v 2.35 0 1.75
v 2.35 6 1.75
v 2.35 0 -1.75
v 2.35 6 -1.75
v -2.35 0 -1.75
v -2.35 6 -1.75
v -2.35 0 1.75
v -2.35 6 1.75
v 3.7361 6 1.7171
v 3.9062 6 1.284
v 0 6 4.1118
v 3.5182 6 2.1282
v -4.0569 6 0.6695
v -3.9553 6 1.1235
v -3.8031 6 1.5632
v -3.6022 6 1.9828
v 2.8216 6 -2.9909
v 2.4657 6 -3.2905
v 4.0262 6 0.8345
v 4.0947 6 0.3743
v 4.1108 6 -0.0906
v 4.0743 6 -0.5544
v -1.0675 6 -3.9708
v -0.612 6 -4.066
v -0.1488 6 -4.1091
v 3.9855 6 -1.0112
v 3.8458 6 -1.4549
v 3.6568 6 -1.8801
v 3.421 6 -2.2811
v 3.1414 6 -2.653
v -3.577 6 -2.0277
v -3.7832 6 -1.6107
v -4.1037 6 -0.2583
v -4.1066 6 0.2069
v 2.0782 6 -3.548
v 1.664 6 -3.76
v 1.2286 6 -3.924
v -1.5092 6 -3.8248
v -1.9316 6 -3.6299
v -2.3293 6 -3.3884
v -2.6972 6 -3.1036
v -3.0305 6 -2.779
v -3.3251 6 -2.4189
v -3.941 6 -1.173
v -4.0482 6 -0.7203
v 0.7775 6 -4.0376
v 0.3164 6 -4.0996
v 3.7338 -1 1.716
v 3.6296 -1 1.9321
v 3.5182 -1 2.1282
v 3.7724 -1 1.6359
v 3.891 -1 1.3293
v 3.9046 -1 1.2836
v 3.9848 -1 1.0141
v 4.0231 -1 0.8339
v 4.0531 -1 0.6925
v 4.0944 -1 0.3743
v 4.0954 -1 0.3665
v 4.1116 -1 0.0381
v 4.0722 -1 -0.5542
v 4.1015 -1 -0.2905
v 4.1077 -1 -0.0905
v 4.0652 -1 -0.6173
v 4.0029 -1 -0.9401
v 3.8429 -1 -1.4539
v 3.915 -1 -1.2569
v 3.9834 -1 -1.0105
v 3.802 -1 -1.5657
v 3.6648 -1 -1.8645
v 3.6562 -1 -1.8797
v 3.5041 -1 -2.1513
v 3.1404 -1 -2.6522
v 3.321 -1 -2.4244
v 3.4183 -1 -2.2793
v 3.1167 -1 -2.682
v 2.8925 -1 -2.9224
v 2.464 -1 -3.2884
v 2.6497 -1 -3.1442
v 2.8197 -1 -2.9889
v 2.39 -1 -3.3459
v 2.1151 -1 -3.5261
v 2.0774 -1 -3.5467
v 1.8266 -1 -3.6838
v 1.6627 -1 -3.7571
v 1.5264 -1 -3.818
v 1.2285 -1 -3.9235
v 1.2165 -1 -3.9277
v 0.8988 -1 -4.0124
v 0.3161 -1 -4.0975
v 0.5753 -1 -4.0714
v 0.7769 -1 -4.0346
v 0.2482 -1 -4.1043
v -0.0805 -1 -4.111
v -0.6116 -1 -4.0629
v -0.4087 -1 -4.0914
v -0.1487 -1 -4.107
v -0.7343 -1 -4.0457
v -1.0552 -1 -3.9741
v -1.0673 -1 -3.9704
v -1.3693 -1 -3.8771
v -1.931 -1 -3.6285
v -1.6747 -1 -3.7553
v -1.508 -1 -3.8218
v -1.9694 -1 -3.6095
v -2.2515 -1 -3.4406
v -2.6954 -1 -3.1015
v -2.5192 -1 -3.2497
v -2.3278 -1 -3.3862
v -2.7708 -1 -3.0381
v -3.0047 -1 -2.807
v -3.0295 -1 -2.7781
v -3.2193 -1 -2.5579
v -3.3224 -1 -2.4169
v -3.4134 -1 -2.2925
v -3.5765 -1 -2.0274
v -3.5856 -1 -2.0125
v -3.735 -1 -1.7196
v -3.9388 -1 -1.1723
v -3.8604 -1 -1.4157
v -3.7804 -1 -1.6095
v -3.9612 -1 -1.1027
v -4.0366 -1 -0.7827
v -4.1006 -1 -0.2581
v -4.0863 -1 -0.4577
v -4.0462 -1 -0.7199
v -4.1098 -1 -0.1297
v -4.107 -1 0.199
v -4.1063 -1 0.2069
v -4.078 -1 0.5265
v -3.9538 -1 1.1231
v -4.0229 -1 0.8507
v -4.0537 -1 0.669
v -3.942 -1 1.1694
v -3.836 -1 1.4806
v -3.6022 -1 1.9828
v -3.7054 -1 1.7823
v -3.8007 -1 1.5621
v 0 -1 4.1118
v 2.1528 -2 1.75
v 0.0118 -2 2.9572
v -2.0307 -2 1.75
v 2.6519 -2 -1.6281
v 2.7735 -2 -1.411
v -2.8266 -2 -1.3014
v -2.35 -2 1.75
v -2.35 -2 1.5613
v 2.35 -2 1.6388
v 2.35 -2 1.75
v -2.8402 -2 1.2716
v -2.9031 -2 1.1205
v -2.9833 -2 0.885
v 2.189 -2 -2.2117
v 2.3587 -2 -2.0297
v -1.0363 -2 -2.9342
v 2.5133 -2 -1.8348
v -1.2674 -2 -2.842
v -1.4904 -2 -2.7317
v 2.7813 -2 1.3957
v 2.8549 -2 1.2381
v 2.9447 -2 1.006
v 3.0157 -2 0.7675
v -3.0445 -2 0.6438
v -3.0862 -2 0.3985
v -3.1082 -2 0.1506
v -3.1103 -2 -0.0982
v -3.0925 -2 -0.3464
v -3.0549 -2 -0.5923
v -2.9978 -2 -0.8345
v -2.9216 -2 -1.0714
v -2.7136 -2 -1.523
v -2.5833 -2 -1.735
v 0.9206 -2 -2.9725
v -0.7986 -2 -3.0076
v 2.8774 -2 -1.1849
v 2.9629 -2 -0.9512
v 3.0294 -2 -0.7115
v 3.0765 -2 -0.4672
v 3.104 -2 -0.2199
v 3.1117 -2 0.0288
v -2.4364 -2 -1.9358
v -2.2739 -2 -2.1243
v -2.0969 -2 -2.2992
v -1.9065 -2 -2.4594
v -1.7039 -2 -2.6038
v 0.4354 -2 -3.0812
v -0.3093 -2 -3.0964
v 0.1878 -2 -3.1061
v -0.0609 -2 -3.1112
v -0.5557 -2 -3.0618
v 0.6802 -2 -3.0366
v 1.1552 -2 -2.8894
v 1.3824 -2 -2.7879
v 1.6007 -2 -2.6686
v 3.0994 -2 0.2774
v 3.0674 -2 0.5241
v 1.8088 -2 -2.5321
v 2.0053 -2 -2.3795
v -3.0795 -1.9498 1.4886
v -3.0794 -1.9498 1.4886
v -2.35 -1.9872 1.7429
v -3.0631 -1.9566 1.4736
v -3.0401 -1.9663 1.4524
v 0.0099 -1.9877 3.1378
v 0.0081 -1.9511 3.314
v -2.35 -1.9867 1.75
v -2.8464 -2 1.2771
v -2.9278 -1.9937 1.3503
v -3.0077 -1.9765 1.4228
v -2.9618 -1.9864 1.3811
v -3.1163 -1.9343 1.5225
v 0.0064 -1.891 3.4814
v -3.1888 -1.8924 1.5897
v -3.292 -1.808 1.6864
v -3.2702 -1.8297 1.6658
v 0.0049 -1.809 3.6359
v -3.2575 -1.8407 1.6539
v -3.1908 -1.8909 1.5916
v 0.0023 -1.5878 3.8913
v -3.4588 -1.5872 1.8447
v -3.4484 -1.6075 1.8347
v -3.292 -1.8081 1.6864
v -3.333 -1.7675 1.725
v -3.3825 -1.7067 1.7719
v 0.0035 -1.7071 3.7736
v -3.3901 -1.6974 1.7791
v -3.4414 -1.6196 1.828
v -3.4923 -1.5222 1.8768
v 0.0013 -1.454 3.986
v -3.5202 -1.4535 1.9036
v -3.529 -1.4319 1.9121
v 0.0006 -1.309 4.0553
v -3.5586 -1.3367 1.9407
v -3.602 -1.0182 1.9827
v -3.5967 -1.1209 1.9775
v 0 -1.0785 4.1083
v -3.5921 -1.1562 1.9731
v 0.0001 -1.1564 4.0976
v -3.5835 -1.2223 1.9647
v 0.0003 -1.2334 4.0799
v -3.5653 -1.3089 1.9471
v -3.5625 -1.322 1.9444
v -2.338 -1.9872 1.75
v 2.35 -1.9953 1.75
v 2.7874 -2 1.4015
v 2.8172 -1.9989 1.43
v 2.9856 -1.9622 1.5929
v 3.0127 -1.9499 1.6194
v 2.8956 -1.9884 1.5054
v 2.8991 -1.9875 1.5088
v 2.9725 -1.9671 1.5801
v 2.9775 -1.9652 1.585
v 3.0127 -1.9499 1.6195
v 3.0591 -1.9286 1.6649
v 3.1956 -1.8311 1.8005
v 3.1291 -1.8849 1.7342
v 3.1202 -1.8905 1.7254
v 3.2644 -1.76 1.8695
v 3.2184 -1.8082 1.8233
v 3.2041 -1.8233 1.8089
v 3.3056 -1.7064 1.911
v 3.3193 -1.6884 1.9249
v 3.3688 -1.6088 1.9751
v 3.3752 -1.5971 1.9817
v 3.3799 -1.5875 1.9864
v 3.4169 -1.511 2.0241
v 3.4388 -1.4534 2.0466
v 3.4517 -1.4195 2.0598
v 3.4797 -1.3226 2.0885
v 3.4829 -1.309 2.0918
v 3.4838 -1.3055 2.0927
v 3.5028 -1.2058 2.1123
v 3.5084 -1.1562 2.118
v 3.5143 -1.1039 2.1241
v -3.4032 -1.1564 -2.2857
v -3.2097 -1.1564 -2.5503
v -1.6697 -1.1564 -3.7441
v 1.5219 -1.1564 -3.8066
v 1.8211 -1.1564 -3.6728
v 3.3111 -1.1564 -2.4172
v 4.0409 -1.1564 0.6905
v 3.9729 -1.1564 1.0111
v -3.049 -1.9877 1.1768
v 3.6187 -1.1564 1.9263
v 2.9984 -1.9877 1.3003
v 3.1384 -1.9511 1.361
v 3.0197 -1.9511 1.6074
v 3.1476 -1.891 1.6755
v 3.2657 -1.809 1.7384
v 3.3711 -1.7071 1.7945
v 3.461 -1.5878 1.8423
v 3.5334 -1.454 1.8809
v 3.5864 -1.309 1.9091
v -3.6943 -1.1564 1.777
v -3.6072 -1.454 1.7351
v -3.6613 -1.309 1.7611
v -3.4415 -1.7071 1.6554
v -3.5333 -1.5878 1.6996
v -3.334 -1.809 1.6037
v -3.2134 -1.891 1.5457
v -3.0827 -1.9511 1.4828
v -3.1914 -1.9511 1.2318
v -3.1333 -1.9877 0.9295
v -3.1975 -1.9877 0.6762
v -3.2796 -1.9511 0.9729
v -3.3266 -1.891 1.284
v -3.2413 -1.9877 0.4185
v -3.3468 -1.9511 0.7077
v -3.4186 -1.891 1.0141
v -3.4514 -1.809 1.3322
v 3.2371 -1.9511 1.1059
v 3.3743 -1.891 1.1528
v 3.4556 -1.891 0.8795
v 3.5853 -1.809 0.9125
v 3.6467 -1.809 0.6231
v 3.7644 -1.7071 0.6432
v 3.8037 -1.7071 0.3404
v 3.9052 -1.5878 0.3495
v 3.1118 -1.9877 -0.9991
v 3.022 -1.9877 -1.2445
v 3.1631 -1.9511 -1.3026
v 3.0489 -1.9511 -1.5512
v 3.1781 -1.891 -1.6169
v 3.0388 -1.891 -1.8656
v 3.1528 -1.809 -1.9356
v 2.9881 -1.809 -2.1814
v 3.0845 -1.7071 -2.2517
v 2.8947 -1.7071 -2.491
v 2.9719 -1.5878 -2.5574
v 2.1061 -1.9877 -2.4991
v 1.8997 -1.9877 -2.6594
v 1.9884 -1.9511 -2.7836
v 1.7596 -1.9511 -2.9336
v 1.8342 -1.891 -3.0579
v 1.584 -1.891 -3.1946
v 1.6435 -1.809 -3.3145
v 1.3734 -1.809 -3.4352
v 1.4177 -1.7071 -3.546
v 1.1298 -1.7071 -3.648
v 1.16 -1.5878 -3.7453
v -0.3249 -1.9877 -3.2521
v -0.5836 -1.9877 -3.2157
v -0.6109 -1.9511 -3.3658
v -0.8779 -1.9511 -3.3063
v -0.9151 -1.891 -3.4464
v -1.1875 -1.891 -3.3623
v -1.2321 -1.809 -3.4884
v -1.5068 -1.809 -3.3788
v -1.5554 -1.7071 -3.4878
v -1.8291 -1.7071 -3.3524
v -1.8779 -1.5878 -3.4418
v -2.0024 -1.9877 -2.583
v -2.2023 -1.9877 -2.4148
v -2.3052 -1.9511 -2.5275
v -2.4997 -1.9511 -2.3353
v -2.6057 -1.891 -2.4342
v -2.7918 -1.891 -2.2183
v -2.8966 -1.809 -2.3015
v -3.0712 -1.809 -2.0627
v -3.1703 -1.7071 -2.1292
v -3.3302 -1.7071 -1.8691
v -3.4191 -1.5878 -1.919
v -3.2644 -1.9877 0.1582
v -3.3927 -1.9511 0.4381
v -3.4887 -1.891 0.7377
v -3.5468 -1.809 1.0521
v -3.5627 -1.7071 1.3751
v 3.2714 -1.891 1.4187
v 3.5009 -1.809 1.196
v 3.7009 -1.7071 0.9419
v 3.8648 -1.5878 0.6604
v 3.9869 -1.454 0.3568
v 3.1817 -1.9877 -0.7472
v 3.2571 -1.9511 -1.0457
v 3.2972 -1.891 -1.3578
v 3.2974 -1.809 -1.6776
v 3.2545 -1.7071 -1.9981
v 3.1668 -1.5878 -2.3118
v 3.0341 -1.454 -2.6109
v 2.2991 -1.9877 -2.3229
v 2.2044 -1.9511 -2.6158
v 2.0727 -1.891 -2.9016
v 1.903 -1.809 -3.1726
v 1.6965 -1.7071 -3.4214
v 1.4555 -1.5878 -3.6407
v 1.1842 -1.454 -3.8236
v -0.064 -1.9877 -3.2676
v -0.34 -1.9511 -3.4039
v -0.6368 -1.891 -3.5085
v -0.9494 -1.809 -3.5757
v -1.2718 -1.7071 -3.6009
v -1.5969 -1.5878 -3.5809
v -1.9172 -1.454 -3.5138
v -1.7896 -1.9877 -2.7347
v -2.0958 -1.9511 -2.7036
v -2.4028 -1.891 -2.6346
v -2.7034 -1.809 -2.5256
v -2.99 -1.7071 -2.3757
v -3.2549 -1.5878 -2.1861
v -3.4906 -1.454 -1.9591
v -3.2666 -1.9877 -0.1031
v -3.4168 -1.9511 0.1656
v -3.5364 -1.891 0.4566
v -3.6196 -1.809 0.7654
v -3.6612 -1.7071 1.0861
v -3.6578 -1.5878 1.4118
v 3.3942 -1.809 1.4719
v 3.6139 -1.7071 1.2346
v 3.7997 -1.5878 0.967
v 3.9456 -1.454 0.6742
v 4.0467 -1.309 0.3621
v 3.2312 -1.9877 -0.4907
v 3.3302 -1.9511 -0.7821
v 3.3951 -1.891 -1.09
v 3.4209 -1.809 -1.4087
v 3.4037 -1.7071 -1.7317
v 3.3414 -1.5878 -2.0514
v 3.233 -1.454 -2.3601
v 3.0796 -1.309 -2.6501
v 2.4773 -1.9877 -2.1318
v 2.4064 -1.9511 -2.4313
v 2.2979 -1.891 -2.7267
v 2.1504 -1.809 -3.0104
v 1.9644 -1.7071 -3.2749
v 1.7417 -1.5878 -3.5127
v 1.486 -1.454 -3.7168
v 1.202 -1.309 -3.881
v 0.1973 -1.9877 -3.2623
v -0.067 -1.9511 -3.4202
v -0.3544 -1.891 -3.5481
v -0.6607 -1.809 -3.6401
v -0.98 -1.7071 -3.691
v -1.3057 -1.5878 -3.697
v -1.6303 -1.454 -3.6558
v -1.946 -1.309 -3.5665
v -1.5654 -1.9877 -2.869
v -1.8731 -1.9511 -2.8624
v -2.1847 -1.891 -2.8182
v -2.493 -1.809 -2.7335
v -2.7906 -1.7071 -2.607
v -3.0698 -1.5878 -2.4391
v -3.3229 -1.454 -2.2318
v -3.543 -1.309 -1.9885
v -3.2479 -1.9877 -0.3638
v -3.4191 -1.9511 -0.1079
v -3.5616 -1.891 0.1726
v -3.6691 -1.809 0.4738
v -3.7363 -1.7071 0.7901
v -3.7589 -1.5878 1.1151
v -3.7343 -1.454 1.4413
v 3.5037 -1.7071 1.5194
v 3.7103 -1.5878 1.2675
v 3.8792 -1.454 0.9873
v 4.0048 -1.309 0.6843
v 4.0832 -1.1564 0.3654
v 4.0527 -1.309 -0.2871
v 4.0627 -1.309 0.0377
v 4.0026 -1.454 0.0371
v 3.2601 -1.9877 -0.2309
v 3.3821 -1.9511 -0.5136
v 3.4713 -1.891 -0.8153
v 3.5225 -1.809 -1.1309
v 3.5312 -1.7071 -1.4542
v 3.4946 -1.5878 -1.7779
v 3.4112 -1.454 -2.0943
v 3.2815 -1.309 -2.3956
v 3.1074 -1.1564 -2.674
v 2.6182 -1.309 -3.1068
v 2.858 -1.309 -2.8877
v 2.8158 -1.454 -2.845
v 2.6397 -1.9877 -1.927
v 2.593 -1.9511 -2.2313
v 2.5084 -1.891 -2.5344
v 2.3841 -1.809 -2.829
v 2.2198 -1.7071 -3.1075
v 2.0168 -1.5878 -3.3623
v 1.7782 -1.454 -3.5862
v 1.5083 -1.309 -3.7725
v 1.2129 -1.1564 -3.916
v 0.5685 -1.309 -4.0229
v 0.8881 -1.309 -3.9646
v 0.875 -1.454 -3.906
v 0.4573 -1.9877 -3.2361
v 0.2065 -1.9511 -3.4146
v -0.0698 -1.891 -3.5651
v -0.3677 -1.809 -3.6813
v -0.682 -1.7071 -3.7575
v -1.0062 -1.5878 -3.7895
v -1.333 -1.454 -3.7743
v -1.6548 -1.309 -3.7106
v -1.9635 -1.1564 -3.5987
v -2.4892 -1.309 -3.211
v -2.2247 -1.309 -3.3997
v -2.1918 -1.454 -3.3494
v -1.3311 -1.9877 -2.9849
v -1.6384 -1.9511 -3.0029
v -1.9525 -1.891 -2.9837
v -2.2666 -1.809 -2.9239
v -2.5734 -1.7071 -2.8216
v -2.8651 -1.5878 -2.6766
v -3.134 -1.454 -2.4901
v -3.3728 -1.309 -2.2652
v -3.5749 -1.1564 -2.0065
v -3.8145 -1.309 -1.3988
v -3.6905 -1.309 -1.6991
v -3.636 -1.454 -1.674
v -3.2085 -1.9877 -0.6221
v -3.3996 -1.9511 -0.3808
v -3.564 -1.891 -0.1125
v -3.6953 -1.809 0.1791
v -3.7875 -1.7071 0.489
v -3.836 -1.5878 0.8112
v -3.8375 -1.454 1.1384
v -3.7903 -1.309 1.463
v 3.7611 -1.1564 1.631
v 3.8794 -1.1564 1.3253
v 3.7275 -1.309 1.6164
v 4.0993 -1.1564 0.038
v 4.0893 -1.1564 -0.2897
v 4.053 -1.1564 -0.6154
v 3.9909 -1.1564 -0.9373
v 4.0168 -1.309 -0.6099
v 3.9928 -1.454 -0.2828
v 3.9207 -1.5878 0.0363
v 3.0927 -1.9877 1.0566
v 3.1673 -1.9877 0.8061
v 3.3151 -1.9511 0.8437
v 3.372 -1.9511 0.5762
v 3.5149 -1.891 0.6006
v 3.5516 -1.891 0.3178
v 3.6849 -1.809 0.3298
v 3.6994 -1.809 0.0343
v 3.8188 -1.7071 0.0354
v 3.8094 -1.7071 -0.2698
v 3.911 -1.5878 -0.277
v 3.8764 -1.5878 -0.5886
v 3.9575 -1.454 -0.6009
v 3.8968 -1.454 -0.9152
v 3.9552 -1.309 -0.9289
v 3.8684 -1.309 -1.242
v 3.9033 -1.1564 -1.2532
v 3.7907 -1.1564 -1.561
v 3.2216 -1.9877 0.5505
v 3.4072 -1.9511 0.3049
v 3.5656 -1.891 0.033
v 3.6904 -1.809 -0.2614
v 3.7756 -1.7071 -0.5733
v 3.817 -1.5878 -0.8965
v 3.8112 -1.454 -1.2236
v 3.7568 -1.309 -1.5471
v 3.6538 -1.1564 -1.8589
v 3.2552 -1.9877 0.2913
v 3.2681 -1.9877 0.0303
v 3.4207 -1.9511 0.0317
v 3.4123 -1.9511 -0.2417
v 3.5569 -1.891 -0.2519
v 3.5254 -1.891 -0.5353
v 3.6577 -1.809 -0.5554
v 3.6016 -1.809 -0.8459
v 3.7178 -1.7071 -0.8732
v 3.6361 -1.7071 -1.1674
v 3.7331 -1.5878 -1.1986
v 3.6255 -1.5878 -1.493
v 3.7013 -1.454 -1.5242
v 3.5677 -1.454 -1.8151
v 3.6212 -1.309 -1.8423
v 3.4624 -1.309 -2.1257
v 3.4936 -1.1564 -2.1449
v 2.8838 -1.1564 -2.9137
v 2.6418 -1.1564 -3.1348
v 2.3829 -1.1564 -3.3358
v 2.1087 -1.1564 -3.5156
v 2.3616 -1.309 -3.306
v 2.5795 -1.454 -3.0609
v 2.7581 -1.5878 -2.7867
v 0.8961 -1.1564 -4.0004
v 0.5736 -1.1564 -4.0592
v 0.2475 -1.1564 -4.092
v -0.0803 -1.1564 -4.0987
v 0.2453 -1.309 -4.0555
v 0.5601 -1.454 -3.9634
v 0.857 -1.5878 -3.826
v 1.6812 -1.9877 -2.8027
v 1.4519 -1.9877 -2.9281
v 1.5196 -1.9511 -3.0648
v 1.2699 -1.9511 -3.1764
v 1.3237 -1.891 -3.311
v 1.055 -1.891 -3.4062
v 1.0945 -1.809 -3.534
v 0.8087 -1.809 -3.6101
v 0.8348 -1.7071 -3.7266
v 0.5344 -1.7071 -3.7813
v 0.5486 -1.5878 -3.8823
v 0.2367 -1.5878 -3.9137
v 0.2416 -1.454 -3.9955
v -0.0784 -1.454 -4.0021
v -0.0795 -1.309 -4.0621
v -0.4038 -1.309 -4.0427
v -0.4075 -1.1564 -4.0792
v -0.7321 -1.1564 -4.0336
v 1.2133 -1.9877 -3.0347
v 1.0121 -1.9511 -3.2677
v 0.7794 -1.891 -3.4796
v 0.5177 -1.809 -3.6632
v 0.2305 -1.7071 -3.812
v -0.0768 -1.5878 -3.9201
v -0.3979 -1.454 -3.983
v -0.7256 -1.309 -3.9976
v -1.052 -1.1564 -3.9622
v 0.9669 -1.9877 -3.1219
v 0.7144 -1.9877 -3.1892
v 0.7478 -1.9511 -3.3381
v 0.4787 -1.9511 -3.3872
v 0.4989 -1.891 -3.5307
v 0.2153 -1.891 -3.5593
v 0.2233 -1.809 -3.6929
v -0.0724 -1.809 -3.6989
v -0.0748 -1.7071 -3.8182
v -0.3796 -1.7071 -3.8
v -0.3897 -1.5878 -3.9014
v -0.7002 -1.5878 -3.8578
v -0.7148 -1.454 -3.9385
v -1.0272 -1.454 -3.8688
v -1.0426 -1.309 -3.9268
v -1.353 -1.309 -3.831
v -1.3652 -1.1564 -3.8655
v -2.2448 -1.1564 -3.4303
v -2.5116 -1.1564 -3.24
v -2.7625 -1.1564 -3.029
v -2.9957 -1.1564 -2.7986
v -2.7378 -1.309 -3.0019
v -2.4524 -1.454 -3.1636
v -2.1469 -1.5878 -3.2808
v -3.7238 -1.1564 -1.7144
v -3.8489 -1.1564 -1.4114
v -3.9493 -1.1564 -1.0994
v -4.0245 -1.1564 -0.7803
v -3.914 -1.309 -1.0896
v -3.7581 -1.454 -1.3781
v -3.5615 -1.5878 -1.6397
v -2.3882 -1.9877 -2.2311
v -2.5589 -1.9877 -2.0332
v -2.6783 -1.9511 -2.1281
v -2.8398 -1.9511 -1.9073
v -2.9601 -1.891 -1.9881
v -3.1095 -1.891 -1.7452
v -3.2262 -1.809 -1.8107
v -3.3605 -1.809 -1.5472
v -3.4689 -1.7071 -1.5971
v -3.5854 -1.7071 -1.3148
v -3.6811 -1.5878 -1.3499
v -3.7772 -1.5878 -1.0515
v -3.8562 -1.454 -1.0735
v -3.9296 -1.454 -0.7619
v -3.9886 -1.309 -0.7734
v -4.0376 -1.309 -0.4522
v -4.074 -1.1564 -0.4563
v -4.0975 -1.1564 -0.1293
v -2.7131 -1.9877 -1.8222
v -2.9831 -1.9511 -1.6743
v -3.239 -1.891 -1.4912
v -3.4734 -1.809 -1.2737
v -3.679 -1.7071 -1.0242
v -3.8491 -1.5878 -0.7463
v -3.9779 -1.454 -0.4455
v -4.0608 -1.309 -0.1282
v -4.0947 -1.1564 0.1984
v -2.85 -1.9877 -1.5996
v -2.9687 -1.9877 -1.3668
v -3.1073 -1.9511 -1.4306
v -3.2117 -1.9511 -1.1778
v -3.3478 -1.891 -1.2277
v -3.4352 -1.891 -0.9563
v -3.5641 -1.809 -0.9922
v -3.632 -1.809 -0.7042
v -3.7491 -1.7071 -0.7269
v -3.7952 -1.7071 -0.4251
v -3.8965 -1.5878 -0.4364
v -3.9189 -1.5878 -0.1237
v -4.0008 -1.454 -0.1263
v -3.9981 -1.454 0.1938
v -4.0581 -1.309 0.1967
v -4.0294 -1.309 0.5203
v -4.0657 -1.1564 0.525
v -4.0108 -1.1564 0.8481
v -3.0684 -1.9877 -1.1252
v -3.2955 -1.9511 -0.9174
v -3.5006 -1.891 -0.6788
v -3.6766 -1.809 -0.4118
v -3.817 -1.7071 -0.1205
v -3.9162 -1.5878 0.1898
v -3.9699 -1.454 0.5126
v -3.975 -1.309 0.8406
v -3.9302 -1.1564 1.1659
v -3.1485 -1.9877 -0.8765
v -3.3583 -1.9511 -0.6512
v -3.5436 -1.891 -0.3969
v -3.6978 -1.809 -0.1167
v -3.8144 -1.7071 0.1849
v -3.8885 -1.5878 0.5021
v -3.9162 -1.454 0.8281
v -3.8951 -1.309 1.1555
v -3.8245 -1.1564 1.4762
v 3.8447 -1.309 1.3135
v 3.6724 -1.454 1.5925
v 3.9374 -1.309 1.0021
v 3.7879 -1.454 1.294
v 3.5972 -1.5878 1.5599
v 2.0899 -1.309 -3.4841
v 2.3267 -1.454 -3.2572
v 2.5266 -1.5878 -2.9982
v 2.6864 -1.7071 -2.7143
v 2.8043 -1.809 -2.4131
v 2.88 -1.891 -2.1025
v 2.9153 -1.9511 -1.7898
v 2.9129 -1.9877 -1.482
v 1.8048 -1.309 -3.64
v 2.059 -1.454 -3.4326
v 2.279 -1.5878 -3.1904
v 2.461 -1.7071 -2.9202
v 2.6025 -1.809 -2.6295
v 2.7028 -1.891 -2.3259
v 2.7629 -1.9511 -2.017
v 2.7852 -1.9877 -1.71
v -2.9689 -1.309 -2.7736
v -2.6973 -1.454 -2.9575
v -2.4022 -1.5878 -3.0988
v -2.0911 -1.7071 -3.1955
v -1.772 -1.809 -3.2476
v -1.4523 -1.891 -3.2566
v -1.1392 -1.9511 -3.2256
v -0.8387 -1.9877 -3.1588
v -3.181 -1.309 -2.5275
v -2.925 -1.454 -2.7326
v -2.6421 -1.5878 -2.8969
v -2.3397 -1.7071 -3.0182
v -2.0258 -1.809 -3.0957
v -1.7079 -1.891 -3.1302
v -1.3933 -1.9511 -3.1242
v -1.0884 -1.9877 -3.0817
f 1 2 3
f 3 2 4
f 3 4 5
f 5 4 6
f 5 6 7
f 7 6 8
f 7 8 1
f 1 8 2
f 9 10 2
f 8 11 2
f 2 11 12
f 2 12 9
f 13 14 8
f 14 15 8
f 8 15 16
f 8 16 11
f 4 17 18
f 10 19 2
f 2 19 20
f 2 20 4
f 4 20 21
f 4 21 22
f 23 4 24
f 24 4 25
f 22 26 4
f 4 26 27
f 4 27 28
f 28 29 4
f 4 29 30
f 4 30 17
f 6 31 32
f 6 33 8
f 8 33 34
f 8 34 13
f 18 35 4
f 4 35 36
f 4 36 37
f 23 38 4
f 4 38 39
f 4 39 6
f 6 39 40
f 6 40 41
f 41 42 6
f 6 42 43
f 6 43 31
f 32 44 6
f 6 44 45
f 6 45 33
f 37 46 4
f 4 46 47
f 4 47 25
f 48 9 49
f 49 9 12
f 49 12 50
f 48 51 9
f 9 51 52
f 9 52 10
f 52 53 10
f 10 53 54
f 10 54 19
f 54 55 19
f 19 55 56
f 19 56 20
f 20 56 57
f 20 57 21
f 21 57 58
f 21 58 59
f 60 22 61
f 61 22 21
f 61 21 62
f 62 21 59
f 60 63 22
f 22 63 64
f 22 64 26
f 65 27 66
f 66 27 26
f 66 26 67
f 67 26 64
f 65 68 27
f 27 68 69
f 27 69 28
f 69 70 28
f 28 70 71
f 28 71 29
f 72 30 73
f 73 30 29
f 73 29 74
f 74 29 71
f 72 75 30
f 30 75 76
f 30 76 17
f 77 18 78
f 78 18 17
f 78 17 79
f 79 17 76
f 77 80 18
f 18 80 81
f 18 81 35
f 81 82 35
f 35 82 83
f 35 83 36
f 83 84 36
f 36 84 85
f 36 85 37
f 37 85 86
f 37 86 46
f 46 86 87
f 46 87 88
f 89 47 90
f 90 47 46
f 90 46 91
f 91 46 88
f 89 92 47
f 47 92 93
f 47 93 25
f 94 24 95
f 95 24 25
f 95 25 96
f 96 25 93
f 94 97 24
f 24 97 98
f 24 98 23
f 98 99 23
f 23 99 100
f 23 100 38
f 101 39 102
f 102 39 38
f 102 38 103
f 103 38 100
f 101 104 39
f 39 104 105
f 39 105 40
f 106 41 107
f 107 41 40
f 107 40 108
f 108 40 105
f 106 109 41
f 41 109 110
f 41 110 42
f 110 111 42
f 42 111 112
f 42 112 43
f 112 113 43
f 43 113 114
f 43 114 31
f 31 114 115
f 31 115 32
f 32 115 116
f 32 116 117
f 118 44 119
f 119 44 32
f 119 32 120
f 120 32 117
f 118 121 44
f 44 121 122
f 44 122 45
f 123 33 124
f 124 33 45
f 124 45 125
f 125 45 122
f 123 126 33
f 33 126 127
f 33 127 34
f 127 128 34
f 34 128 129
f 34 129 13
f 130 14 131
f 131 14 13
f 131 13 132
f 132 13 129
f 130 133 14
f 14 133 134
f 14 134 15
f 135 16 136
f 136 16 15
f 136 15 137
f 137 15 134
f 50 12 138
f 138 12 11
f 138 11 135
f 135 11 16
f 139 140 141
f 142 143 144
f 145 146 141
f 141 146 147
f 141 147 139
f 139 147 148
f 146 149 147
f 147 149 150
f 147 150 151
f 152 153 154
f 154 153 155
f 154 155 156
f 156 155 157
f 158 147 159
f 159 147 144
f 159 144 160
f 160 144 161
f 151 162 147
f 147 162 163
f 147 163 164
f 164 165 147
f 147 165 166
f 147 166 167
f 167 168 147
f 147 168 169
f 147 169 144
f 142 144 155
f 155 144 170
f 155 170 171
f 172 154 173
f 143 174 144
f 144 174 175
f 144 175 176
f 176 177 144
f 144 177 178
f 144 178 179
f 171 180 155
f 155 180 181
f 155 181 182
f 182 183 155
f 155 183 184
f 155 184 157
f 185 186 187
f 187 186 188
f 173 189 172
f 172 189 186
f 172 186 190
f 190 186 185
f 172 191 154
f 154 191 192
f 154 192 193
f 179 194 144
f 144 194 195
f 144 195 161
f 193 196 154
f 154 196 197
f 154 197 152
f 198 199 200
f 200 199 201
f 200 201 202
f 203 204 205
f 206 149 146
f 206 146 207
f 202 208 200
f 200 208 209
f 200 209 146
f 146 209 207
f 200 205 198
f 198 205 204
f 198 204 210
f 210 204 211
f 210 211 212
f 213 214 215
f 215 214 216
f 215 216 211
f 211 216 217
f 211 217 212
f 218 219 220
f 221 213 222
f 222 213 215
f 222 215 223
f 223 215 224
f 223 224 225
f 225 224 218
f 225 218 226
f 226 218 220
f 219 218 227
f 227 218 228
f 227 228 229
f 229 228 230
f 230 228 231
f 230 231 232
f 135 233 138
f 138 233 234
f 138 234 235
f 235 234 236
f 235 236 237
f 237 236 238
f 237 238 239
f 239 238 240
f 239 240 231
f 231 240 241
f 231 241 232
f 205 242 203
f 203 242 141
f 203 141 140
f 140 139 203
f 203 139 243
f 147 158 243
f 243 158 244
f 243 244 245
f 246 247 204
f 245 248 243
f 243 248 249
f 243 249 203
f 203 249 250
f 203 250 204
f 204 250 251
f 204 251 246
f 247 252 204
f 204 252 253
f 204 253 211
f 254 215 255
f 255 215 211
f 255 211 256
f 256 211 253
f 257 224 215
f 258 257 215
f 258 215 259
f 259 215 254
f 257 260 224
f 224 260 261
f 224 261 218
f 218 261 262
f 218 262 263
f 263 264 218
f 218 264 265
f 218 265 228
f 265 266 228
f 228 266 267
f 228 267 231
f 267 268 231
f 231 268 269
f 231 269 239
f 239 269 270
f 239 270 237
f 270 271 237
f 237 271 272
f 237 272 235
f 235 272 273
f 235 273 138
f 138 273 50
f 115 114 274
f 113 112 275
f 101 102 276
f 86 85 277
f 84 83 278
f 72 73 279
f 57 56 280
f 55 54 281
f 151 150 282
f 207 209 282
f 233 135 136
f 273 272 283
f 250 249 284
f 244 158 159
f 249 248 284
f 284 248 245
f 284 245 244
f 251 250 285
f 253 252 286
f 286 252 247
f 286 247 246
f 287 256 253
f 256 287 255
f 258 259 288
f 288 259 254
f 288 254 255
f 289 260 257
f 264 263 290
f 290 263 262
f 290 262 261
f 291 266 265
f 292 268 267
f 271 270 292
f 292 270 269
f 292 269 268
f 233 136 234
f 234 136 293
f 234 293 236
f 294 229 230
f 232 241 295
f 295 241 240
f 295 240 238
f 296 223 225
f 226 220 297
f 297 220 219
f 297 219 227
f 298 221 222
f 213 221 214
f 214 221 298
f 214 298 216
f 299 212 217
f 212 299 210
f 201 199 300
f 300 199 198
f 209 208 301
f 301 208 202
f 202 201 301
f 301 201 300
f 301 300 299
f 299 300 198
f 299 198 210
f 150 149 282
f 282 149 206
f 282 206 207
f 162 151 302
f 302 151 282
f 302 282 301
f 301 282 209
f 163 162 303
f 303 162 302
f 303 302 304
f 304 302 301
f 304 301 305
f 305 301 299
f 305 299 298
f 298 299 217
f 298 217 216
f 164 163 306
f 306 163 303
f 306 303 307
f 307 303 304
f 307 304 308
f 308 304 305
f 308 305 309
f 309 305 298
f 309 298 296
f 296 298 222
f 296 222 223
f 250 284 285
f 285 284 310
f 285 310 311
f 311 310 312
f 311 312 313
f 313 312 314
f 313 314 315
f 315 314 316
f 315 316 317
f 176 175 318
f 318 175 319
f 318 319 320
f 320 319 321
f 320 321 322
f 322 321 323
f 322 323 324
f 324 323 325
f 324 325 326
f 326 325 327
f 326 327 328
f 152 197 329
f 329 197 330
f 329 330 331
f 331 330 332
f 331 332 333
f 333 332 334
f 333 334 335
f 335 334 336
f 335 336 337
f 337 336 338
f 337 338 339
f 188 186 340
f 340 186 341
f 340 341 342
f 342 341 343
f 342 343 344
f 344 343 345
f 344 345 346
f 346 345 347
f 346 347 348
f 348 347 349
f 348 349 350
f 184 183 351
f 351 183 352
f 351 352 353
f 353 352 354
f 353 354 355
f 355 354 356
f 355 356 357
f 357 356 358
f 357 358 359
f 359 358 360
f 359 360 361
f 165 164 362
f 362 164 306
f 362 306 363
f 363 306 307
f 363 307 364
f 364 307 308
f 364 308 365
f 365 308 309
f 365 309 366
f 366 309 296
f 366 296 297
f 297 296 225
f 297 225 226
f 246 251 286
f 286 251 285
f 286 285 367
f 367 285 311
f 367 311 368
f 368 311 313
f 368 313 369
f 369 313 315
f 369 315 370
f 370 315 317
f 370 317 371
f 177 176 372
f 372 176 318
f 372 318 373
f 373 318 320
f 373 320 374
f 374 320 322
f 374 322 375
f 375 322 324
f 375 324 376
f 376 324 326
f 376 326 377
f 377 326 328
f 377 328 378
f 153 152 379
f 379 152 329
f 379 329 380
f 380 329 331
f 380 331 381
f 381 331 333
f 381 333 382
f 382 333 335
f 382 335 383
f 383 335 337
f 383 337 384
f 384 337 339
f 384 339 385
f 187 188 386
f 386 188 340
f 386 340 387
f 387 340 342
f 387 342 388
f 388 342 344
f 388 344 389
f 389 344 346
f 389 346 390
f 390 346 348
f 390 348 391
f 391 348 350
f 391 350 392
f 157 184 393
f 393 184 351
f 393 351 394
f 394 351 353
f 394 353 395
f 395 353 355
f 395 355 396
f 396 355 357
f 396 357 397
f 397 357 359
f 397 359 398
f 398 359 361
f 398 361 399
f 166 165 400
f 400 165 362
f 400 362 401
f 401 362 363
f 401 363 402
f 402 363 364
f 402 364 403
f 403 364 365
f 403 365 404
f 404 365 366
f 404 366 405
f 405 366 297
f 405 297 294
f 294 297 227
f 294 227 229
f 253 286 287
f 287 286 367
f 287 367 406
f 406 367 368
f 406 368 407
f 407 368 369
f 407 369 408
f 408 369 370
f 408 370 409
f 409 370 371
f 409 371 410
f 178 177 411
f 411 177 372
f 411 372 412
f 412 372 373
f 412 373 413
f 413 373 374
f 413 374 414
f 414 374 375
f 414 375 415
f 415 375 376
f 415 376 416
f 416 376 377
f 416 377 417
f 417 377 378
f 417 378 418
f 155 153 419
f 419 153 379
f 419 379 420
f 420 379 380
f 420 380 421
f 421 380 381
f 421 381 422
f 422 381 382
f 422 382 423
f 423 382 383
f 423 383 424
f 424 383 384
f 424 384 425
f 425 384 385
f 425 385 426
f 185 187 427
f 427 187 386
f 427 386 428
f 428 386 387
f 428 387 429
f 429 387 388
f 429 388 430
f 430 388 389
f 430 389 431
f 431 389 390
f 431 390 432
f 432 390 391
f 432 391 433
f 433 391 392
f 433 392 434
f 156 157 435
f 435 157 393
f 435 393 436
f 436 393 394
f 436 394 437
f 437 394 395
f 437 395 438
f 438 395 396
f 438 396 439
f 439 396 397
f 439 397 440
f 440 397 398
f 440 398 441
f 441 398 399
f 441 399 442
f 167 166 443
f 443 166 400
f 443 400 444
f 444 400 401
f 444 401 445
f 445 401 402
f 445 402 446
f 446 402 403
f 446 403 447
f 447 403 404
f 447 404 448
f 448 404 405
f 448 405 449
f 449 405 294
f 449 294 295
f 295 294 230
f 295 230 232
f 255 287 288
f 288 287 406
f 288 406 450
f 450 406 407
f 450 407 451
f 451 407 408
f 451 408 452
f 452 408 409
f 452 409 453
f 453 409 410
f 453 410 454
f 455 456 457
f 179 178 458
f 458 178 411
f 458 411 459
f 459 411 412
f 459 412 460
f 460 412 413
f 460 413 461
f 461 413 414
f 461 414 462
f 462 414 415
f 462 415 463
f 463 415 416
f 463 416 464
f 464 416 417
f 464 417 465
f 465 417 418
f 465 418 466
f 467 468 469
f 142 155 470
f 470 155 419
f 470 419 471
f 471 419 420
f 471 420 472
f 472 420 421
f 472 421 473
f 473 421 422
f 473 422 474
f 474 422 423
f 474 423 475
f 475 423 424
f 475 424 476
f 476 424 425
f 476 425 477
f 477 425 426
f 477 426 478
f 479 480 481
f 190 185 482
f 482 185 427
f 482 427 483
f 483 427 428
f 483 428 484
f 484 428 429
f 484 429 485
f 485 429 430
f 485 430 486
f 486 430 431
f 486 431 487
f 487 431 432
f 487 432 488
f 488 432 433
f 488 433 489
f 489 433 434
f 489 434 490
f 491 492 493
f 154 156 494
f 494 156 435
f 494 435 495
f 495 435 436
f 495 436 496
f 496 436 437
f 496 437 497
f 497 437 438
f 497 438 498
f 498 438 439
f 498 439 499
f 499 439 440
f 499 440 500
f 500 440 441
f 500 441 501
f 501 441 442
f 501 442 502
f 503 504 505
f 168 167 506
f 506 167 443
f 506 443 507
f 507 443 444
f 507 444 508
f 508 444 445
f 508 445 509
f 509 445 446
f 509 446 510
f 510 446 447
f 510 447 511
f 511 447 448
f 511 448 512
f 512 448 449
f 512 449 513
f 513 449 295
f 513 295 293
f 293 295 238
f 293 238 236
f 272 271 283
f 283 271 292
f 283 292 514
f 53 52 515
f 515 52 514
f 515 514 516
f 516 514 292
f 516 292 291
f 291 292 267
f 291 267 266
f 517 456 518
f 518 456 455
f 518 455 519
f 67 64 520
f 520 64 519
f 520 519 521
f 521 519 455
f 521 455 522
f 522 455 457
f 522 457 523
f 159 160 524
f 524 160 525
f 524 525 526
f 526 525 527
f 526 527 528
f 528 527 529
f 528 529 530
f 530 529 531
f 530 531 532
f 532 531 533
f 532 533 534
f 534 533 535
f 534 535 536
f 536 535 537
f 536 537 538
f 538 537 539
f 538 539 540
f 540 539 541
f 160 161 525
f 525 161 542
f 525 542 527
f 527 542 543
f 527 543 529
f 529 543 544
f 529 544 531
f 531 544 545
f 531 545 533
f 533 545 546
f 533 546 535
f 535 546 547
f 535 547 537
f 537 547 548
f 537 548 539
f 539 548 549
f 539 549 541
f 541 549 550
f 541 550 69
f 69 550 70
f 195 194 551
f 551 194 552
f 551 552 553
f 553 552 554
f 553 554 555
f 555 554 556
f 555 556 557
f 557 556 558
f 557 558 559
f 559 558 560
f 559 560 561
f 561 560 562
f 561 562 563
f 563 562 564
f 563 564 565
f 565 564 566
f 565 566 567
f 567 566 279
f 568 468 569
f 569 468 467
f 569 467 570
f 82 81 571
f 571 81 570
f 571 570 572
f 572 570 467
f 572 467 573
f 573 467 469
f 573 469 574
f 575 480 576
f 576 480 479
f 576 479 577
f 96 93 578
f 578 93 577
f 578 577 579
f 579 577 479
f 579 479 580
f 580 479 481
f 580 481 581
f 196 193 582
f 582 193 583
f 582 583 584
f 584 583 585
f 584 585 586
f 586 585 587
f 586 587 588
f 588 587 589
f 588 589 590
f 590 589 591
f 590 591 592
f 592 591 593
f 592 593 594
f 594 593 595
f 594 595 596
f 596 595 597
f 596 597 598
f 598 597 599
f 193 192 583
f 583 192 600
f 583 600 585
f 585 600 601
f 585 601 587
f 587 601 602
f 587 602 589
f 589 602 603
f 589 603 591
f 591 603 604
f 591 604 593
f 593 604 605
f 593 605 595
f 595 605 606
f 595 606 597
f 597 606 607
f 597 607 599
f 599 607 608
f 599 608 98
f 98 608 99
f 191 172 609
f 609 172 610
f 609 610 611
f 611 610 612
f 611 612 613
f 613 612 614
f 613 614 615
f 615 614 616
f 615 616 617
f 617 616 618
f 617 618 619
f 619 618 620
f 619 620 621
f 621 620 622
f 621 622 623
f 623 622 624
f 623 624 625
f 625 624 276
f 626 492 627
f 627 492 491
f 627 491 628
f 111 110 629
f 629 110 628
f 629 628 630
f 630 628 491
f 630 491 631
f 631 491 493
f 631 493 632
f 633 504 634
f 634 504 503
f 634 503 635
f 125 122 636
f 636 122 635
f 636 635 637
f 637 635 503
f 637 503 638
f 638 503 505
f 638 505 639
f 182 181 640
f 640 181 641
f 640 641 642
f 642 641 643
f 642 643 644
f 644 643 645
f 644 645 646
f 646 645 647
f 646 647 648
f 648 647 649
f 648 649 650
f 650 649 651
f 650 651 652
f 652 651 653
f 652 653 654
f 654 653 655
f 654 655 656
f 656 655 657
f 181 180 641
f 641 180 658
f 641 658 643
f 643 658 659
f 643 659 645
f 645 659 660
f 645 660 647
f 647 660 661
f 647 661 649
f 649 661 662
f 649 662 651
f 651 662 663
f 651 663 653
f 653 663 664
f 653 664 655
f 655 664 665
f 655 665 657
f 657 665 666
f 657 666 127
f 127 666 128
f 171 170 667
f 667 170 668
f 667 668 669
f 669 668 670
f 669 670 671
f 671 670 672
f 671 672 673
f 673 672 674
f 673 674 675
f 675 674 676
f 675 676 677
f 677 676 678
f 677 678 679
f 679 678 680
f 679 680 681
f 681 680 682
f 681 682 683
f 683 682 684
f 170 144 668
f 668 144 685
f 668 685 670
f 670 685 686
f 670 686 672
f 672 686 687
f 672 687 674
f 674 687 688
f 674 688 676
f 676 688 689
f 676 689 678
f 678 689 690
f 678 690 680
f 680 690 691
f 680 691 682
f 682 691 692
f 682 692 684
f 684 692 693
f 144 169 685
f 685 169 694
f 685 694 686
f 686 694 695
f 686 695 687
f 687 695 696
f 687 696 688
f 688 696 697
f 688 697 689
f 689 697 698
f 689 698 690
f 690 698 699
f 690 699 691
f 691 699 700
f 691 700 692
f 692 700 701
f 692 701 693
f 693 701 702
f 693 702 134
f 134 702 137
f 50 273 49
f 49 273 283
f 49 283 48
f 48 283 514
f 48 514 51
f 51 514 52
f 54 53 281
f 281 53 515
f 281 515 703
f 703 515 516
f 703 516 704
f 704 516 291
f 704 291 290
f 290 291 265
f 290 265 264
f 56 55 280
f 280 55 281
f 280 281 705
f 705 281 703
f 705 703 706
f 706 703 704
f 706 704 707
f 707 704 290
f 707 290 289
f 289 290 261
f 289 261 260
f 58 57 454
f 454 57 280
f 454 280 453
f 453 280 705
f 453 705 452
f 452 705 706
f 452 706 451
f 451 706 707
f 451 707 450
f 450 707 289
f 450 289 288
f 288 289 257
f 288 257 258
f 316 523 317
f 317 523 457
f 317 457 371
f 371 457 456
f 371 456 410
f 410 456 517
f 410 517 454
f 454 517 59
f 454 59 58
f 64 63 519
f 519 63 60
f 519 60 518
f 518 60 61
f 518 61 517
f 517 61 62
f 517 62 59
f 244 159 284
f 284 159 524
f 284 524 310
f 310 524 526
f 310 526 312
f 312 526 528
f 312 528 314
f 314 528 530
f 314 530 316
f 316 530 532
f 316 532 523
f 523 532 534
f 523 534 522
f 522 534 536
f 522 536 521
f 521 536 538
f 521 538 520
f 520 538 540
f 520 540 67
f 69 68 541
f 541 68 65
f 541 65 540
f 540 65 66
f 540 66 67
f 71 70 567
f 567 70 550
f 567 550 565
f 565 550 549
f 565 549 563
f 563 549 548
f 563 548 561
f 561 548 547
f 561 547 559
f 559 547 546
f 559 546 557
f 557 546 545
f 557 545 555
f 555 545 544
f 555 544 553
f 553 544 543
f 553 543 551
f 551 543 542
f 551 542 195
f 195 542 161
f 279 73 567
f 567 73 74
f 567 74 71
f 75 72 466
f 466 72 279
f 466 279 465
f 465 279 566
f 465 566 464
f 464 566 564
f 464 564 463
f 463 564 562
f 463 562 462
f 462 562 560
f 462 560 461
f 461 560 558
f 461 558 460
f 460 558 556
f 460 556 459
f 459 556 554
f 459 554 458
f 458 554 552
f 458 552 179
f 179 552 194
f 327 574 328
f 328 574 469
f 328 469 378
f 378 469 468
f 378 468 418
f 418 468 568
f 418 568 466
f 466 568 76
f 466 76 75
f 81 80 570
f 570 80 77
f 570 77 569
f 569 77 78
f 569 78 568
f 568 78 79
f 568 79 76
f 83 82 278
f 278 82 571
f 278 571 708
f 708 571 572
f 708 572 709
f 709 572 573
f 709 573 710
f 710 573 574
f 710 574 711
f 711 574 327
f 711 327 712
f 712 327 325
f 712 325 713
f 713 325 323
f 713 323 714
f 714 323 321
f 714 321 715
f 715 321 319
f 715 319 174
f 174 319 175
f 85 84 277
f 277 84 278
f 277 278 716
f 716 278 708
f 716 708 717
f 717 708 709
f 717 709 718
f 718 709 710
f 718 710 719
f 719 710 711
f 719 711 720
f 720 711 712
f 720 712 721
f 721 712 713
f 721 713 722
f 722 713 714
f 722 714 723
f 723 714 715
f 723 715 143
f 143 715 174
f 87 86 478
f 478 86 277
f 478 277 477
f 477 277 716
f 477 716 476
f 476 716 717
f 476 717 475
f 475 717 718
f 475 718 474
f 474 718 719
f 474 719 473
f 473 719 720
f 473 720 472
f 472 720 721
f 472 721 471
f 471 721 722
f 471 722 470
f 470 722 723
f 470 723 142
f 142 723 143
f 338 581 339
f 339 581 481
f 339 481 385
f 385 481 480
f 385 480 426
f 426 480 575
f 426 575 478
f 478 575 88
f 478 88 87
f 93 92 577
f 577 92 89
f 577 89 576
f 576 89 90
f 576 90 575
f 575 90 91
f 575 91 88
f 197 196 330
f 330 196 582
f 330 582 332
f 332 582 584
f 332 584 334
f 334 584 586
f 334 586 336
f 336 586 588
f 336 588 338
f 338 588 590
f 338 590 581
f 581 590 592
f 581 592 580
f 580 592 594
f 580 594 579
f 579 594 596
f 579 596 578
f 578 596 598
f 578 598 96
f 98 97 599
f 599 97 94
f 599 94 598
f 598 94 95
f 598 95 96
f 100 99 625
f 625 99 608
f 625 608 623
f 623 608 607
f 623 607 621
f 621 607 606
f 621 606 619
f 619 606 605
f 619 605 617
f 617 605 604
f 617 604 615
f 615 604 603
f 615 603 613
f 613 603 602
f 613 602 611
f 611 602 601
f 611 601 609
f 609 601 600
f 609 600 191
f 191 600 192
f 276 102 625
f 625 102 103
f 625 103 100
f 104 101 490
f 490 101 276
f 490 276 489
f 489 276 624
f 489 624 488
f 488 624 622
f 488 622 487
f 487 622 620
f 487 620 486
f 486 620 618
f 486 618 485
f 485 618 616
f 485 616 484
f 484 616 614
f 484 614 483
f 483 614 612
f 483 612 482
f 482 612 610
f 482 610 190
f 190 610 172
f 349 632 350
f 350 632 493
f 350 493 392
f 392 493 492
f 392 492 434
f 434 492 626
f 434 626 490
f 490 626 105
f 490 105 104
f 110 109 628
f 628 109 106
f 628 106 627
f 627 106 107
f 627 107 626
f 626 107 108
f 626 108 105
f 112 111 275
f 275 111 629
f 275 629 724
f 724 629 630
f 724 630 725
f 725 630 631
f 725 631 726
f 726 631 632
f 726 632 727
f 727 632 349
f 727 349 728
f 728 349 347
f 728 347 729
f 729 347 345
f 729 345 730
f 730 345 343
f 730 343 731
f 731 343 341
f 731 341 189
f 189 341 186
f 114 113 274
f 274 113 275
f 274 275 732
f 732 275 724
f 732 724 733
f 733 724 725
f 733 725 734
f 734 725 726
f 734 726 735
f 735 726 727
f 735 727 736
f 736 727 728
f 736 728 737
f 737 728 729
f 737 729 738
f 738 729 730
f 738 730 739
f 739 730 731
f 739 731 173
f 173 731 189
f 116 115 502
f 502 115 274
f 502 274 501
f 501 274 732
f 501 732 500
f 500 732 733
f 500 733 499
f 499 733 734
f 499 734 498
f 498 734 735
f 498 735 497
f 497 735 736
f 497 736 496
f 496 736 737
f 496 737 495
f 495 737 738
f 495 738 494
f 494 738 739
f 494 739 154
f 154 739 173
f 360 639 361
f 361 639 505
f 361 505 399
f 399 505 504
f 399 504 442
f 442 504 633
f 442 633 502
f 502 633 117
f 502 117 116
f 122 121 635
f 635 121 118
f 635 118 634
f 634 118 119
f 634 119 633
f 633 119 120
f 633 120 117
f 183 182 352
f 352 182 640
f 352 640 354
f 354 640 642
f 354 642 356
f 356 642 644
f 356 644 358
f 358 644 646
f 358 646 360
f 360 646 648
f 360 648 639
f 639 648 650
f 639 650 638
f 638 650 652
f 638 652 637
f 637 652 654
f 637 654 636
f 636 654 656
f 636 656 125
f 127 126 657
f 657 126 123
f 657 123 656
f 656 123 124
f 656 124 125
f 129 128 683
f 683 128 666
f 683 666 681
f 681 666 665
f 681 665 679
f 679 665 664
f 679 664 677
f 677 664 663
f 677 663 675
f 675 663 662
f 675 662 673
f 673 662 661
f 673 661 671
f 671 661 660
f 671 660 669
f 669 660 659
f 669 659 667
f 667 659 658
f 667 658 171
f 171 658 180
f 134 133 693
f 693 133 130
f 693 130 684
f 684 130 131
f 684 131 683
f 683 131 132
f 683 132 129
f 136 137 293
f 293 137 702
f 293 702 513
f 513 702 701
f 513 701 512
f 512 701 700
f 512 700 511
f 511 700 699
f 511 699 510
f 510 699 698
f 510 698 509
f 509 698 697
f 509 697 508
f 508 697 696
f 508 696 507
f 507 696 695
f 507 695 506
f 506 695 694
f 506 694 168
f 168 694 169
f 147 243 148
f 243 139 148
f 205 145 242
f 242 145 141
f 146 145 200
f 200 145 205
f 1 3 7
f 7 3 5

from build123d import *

# Parameters (mm, degrees)
SKETCH1_R           = 4.111811984
SKETCH1_W           = 4.7
SKETCH1_H           = 3.5
BOSS_EXTRUDE1_DEPTH = 6
CUT_EXTRUDE1_DEPTH  = 6
BOSS_EXTRUDE2_START = 2
SKETCH4_W           = 4.7
SKETCH4_H           = 3.5
BOSS_EXTRUDE2_DEPTH = 2
FILLET1_R           = 1
SKETCH5_W           = 4.7
SKETCH5_H           = 3.5
BOSS_EXTRUDE3_DEPTH = 2


with BuildPart() as part:
    # Sketch1 → Boss-Extrude1 (new body)
    with BuildSketch(Plane(origin=(0, 0, 0), x_dir=(1, 0, 0), z_dir=(0, 1, 0))):
        with Locations(Location((0, 0, 0), (0, 0, 270))):
            Circle(SKETCH1_R)
        Rectangle(SKETCH1_W, SKETCH1_H, mode=Mode.SUBTRACT)
    extrude(amount=BOSS_EXTRUDE1_DEPTH)

    # Sketch3 → Cut-Extrude1 (cut)
    with BuildSketch(Plane(origin=(0, 6, 0), x_dir=(1, 0, 0), z_dir=(0, 1, 0))):
        Polygon((0, -4.111811984), (-6.956919602, 0), (0.821126852, -8.503515518), (6.0147149, -0.720584911), align=None)
    extrude(amount=-CUT_EXTRUDE1_DEPTH, mode=Mode.SUBTRACT)

    # Sketch4 → Boss-Extrude2 (add)
    with BuildSketch(Plane.XZ.offset(BOSS_EXTRUDE2_START)):
        with BuildLine():
            Line((0, 4.111811984), (-3.602153369, 1.982798248))
            ThreePointArc((-3.602153369, 1.982798248), (0.083923032, -4.11095545), (3.518230338, 2.128157202))
            Line((3.518230338, 2.128157202), (0, 4.111811984))
        make_face()
        Rectangle(SKETCH4_W, SKETCH4_H, mode=Mode.SUBTRACT)
    extrude(amount=-BOSS_EXTRUDE2_DEPTH)

    # Fillet1
    # the kernel refuses this fillet: 1 mm, written as the material it takes off along each edge
    with BuildSketch(Plane(origin=(2.152193697, -2, 5.383842759), x_dir=(0, 1, 0), z_dir=(-0.860877478620404, 0, -0.5088123099966979))) as fillet1_piece_1:
        with BuildLine():
            CenterArc((FILLET1_R, FILLET1_R), FILLET1_R, 180, 90)
            Line((0, FILLET1_R), (0, 0))
            Line((0, 0), (FILLET1_R, 0))
        make_face()
    extrude(amount=9.184281107, mode=Mode.SUBTRACT)
    with BuildSketch(Plane(origin=(0, -2, 0), x_dir=(-0.4420339671599803, 0, 0.8969983120813605), z_dir=(0.8969983120813605, 0, 0.4420339671599803))) as fillet1_piece_2:
        with BuildLine():
            CenterArc((4.111811984 - FILLET1_R, -FILLET1_R), FILLET1_R, 0, 90)
            Line((4.111811984 - FILLET1_R, 0), (4.111811984, 0))
            Line((4.111811984, 0), (4.111811984, -FILLET1_R))
        make_face()
    revolve(axis=Axis((0, -2, 0), (0, -1, 0)), revolution_arc=309.871545739, mode=Mode.SUBTRACT)
    with BuildSketch(Plane(origin=(5.695938152, -2, 0.900318175), x_dir=(0, 1, 0), z_dir=(-0.8710831255255876, 0, 0.49113561103281167))) as fillet1_piece_3:
        with BuildLine():
            CenterArc((FILLET1_R, FILLET1_R), FILLET1_R, 180, 90)
            Line((0, FILLET1_R), (0, 0))
            Line((0, 0), (FILLET1_R, 0))
        make_face()
    extrude(amount=9.038914582, mode=Mode.SUBTRACT)

    # Sketch5 → Boss-Extrude3 (add)
    with BuildSketch(Plane.XZ.offset(2)):
        Rectangle(SKETCH5_W, SKETCH5_H)
    extrude(amount=-BOSS_EXTRUDE3_DEPTH)


solid = part.part
